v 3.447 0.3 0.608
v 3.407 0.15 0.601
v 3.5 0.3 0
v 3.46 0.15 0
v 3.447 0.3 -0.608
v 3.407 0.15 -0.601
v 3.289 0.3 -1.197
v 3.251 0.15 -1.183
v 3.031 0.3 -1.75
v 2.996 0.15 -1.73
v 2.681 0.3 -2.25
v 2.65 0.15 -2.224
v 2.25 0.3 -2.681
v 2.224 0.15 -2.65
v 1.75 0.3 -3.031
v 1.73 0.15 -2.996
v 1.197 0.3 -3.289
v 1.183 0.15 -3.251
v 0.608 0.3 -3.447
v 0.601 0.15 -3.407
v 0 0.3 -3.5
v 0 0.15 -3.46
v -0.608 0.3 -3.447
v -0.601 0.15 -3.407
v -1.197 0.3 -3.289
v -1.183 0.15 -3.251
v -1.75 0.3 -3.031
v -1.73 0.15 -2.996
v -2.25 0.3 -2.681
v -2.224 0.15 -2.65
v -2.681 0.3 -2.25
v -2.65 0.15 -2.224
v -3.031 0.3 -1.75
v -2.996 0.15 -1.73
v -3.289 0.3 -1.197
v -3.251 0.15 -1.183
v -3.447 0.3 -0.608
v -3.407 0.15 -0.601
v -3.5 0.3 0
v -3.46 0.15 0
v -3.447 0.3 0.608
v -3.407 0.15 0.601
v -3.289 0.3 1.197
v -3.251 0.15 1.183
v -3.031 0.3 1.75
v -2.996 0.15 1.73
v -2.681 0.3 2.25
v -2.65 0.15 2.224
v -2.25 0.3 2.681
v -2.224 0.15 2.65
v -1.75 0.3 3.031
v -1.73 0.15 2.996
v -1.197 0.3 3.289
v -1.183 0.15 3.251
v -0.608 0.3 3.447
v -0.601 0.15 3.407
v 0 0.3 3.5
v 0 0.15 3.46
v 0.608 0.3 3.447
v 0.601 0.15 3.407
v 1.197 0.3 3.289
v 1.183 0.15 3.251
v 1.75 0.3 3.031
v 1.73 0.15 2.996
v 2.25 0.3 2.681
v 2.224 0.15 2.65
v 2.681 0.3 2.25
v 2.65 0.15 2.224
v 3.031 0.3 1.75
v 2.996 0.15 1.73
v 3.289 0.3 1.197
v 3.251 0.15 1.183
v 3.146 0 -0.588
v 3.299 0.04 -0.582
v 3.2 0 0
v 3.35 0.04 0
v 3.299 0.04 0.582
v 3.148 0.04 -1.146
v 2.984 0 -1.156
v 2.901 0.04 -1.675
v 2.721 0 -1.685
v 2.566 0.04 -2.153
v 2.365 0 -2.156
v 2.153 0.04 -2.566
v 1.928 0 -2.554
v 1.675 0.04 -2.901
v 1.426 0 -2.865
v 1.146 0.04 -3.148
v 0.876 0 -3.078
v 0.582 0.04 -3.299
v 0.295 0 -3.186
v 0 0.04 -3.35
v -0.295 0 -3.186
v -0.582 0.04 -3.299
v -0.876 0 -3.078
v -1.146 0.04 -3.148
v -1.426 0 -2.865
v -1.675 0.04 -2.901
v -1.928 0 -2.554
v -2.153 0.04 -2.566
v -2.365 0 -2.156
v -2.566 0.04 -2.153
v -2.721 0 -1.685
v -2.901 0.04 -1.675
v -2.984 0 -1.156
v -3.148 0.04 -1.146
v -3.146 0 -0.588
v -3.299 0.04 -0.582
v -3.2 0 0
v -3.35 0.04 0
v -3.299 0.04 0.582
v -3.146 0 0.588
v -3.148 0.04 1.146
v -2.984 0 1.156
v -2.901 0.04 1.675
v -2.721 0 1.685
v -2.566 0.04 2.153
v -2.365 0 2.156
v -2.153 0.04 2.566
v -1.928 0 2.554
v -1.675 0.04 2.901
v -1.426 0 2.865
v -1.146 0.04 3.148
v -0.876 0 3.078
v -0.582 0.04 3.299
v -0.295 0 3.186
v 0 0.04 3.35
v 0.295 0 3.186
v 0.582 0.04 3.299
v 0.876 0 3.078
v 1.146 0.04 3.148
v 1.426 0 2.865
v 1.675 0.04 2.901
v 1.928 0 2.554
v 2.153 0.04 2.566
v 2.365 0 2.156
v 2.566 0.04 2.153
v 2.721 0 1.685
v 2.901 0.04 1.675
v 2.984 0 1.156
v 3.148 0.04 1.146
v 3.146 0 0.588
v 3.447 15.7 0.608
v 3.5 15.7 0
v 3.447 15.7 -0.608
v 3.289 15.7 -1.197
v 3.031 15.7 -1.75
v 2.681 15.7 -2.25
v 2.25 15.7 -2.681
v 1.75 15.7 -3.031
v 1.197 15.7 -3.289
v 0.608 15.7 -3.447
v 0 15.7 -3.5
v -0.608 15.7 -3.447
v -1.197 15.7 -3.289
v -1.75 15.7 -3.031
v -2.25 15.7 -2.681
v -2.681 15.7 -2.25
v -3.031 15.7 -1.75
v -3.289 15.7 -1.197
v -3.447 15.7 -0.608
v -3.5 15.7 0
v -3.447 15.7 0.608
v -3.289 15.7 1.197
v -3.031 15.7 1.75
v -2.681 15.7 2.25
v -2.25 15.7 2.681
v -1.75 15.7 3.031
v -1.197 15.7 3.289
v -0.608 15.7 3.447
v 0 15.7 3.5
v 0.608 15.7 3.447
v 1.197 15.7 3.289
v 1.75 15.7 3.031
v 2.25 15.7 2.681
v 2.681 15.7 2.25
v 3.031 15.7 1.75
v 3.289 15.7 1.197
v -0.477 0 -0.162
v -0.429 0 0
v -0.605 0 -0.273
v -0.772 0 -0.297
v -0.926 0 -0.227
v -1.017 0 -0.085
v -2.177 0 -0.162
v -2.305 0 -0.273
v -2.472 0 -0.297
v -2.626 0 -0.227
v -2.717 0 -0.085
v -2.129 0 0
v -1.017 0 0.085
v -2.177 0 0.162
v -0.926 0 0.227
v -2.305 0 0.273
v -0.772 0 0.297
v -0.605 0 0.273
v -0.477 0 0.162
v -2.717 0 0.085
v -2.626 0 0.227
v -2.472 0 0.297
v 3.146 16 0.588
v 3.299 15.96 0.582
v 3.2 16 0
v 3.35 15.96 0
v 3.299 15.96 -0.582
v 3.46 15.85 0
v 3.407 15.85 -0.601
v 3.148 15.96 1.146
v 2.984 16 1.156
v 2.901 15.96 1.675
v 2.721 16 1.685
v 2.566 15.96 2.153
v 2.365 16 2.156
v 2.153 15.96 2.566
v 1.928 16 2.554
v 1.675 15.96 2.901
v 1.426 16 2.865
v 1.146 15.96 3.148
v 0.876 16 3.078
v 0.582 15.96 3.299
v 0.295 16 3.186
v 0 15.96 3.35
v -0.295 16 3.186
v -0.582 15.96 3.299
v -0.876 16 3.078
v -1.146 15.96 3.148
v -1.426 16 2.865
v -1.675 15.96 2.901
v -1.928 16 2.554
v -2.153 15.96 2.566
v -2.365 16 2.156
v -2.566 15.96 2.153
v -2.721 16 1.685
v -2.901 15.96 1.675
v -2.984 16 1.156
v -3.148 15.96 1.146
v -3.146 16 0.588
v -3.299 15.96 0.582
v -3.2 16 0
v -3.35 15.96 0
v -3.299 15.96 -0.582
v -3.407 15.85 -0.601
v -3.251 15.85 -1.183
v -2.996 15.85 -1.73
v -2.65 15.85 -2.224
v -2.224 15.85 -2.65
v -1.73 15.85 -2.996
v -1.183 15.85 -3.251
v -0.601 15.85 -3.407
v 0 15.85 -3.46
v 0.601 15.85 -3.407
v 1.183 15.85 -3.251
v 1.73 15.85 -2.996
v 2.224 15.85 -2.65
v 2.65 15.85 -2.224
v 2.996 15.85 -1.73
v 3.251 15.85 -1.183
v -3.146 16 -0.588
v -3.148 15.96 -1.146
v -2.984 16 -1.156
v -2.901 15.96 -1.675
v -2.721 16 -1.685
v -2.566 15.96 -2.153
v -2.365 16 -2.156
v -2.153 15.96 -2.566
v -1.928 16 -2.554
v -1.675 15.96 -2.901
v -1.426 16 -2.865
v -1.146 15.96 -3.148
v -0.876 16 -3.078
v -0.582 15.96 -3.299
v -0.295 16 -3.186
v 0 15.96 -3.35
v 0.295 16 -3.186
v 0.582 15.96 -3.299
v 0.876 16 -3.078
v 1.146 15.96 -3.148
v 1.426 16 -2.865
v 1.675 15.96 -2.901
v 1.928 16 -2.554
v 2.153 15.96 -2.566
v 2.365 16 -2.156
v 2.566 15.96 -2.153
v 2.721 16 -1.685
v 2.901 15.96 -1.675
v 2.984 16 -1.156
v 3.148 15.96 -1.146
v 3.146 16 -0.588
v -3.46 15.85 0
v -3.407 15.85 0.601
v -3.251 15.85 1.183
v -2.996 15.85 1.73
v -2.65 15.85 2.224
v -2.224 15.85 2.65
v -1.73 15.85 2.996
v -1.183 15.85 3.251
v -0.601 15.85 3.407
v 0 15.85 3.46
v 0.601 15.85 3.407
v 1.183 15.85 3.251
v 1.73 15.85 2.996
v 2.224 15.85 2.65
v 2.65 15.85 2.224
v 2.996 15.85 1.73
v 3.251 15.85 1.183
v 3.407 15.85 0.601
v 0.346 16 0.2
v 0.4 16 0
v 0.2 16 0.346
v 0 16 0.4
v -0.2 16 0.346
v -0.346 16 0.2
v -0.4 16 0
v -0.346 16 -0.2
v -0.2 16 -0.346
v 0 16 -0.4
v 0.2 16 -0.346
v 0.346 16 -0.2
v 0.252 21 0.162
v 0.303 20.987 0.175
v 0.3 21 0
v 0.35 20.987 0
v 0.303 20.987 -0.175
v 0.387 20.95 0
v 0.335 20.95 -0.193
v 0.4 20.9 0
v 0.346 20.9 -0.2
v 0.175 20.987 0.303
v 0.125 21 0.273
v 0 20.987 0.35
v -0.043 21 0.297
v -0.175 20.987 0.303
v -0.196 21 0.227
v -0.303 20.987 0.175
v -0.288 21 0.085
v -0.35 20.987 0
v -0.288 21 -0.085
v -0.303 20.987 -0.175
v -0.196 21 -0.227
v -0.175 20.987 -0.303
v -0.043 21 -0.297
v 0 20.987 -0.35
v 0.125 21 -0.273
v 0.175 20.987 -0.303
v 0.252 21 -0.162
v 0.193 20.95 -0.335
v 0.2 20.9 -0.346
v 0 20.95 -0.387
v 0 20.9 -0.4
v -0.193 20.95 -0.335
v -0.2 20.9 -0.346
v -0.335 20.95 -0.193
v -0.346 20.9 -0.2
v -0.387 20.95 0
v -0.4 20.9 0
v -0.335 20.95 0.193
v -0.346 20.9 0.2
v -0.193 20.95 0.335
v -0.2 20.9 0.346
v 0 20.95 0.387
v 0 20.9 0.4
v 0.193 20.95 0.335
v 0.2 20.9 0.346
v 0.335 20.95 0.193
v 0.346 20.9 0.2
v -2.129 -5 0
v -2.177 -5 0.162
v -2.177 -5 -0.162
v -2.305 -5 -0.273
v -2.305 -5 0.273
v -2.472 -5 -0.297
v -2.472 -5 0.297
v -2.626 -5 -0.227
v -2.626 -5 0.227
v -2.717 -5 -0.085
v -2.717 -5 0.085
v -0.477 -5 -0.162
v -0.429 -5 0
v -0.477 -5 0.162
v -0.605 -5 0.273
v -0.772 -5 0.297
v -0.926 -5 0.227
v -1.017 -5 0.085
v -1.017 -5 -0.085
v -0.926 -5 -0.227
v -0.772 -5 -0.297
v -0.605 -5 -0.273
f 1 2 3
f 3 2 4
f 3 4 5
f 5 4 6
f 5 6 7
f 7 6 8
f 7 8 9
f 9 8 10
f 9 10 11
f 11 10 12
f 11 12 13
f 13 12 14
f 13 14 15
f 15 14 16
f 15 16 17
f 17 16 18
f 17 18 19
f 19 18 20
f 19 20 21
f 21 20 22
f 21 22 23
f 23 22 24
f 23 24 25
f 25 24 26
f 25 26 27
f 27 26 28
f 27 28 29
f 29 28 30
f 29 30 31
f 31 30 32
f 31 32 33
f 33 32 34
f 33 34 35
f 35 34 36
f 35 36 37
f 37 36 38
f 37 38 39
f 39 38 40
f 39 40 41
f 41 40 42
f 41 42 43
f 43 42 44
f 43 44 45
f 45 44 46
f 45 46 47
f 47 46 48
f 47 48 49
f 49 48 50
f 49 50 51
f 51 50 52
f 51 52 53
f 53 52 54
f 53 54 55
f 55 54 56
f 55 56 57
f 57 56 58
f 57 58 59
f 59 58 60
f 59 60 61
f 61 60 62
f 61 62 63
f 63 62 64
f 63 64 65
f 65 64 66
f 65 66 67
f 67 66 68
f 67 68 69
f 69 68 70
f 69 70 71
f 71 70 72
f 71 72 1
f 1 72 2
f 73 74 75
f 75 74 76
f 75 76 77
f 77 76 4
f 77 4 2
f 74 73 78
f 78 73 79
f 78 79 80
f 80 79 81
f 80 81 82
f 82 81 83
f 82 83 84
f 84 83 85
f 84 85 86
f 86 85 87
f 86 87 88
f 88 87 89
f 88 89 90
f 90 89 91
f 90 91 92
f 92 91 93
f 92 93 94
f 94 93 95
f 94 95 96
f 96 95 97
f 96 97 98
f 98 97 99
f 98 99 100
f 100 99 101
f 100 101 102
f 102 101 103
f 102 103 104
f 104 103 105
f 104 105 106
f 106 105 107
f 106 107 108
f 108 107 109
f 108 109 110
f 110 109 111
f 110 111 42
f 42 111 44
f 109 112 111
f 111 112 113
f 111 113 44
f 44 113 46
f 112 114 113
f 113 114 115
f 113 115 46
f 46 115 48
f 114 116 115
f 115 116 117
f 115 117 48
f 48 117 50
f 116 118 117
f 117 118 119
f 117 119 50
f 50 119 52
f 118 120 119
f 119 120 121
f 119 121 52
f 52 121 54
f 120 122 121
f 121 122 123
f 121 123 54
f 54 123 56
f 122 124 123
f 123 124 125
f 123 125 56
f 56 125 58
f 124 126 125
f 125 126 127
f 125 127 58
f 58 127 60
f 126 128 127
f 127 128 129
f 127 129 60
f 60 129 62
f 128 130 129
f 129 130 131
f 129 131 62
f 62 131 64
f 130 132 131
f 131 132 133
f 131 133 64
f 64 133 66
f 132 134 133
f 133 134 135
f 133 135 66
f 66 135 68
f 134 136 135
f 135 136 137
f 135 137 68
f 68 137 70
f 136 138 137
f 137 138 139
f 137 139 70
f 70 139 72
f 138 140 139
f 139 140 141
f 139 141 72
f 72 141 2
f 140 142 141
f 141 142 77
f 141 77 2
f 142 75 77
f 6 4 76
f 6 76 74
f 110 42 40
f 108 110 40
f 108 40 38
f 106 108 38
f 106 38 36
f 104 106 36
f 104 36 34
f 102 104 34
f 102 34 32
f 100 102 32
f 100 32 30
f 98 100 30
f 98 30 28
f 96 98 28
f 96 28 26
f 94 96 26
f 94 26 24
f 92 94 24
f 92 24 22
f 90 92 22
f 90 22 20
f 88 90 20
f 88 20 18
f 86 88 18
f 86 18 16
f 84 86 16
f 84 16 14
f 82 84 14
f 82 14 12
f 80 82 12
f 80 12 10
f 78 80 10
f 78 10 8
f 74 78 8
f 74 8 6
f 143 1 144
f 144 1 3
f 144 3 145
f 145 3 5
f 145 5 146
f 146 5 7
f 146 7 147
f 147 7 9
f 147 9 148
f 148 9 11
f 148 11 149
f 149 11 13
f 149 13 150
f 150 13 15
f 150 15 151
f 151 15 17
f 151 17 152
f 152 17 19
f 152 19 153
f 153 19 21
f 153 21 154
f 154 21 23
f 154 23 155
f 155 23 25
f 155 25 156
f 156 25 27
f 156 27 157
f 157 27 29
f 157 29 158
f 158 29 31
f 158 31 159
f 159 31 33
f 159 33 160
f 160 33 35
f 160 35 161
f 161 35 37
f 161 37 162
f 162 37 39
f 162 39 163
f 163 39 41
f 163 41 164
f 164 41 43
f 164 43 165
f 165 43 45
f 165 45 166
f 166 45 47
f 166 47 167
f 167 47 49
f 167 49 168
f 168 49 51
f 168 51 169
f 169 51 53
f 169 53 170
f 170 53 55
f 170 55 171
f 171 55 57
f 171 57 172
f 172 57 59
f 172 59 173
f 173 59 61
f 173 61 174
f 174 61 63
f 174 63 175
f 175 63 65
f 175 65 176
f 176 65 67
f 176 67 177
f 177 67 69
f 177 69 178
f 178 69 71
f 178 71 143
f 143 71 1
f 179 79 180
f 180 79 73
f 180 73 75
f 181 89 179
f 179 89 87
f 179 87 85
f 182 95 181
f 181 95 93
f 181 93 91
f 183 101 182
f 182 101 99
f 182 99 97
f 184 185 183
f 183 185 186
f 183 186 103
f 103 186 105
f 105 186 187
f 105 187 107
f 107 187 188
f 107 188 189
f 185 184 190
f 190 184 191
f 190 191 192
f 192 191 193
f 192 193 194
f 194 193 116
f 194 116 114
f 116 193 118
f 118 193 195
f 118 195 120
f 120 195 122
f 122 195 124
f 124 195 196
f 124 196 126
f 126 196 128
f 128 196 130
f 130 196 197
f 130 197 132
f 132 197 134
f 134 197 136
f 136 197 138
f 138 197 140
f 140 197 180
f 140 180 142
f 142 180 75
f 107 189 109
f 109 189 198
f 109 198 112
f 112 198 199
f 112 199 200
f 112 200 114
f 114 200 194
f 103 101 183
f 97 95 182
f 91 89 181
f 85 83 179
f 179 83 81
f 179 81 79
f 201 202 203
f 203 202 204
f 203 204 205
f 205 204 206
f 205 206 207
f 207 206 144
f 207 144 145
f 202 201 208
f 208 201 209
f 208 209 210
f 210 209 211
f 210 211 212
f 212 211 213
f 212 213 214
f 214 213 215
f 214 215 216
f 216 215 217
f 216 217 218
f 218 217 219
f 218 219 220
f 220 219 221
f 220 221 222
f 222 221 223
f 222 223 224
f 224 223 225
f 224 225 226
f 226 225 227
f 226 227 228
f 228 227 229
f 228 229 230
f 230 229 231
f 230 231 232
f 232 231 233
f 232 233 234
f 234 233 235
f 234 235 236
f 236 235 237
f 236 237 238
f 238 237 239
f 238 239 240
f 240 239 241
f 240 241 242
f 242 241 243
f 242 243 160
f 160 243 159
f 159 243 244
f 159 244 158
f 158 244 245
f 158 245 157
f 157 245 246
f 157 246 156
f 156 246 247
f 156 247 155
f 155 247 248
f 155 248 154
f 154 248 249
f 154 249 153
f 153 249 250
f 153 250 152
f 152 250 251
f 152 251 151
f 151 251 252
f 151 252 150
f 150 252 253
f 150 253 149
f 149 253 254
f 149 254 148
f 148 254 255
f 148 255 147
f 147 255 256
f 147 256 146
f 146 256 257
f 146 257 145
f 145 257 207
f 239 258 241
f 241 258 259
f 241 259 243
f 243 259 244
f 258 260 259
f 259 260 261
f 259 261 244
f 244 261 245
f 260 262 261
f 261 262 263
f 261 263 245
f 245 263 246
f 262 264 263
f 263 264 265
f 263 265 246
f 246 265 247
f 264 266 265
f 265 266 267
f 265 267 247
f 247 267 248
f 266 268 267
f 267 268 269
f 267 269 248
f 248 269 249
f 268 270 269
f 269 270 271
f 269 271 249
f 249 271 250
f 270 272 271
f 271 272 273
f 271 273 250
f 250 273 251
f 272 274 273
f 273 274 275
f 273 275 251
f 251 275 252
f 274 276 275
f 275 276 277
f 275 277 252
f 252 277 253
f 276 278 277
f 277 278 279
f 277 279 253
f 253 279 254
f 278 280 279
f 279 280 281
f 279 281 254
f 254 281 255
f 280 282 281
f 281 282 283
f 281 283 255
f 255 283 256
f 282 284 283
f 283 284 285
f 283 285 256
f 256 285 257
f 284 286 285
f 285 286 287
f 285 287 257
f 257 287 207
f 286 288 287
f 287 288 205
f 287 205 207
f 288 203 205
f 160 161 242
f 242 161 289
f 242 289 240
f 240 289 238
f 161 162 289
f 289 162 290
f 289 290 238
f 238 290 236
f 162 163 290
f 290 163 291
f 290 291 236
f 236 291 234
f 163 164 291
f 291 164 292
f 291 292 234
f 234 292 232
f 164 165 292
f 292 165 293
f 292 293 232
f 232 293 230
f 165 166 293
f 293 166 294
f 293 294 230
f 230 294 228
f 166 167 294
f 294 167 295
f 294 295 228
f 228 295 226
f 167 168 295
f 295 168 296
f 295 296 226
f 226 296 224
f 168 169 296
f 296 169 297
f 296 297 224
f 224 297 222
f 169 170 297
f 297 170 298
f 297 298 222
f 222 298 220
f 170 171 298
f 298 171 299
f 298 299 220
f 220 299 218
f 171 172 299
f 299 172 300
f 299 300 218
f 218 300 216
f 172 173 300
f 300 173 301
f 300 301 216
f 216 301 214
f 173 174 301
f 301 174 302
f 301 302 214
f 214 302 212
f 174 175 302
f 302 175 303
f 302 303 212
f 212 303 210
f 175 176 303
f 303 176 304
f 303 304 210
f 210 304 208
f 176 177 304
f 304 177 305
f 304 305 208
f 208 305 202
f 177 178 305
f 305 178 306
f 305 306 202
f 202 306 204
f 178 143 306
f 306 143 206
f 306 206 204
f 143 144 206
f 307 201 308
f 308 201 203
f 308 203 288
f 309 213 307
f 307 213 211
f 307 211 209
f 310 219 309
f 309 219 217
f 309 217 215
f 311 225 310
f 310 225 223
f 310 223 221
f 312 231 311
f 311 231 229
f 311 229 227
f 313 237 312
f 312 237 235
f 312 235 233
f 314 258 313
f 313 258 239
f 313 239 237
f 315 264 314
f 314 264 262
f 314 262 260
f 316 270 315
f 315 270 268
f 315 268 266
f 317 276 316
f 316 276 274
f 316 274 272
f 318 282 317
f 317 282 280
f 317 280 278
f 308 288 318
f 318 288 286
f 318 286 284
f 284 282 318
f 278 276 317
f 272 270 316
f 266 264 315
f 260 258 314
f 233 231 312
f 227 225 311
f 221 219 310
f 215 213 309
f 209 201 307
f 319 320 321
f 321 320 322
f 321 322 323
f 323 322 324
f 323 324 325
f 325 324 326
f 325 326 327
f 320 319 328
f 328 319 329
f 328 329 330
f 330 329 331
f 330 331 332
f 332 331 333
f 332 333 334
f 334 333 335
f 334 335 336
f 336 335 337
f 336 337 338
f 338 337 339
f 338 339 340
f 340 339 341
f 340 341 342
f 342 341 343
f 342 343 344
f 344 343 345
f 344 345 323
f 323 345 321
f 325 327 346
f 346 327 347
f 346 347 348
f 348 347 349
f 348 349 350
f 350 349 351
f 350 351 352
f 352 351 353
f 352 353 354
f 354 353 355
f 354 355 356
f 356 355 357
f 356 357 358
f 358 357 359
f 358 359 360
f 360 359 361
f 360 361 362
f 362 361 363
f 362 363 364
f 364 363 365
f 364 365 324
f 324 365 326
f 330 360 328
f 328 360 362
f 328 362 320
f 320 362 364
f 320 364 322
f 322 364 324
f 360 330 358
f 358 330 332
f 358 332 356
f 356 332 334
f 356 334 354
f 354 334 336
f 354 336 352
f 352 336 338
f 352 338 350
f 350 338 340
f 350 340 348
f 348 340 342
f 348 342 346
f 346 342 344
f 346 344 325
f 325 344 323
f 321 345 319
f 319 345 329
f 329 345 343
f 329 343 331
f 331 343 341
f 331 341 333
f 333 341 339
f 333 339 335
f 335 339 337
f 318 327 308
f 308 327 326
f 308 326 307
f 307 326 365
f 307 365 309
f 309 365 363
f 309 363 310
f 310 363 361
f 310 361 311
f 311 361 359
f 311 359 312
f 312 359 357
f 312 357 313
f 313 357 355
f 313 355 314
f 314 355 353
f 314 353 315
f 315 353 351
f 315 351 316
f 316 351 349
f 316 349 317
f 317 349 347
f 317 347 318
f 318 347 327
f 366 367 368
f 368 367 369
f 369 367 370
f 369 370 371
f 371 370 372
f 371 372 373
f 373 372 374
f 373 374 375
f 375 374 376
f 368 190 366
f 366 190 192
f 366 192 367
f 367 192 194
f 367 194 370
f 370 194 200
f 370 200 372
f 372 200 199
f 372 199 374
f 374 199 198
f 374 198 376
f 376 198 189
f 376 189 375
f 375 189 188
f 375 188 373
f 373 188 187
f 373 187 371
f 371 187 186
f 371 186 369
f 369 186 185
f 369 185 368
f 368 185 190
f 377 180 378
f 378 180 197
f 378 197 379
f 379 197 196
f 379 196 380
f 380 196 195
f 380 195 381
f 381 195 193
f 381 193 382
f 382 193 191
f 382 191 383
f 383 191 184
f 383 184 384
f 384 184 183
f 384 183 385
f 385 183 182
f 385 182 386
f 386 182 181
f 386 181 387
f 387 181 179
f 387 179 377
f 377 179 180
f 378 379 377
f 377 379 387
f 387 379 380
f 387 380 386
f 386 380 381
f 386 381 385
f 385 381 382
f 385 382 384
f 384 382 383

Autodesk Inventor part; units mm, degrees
ref_plane "YZ Plane" through (0, 0, 0) normal (1, 0, 0) x (0, 1, 0)
ref_plane "XZ Plane" through (0, 0, 0) normal (0, 1, 0) x (-1, 0, 0)
ref_plane "XY Plane" through (0, 0, 0) normal (0, 0, 1) x (1, 0, 0)
sketch "Esboço5" plane through (0, 0, 0) normal (0, 0, 1) x (1, 0, 0)
  line L0 (0, 50) -> (0, -50)
  line L1 (0, 0) -> (-3.5, 0)
  line L2 (-3.5, 0) -> (-3.5, 16)
  line L3 (-3.5, 16) -> (0, 16)
  line L4 (0, 16) -> (0, 0)
  line L5 (0, 16) -> (0, 21)
  line L6 (0, 21) -> (-0.4, 21)
  line L7 (-0.4, 21) -> (-0.4, 16)
  line L8 (-0.4, 16) -> (0, 16)
  line L9 (-2.7292, 0) -> (-2.7292, -5)
  line L10 (-0.7292, 0) -> (-0.7292, -5)
  line L11 (-0.7292, 0) -> (-0.7292, -5)
  line L12 (-0.7292, -5) -> (-1.0292, -5)
  line L13 (-1.0292, -5) -> (-1.0292, 0)
  line L14 (-1.0292, 0) -> (-0.7292, 0)
  line L15 (-2.7292, 0) -> (-2.7292, -5)
  line L16 (-2.7292, -5) -> (-2.4292, -5)
  line L17 (-2.4292, -5) -> (-2.4292, 0)
  line L18 (-2.4292, 0) -> (-2.7292, 0)
  point P0 (-1.0292, 0)
  dimension "d22" = 100
  dimension "d23" = 3.5
  dimension "d24" = 16
  dimension "d25" = 5
  dimension "d26" = 0.4
  dimension "d37" = 5
  dimension "d38" = 5
  dimension "d39" = 2
  dimension "d40" = 1.4584
  dimension "d41" = 0
  dimension "d42" = 21
  dimension "d43" = 0.8
  dimension "d44" = 5
  dimension "d45" = 5
  dimension "d46" = 0.3
  dimension "d47" = 5
  dimension "d48" = 0.3
revolve "Revolução6" add sketch "Esboço5" angle 360 mid plane about axis through (0, 50, 0) along (0, -1, 0) contours L0 L3 L7 L6 | L0 L1 L2 L3
revolve "Revolução7" add sketch "Esboço5" angle 360 mid plane about axis through (-0.7292, 0, 0) along (0, -1, 0) contours L10 L12 L13 L1
revolve "Revolução8" add sketch "Esboço5" angle 360 mid plane about axis through (-2.4292, -5, 0) along (0, 1, 0) contours L17 L16 L9 L1
fillet "Arredondamento4" radius 0.1 1 edges at (-0.4, 21, 0)
fillet "Arredondamento5" radius 0.3 2 edges at (-3.5, 16, 0) (-3.5, 0, 0)
properties part number "Motor"
